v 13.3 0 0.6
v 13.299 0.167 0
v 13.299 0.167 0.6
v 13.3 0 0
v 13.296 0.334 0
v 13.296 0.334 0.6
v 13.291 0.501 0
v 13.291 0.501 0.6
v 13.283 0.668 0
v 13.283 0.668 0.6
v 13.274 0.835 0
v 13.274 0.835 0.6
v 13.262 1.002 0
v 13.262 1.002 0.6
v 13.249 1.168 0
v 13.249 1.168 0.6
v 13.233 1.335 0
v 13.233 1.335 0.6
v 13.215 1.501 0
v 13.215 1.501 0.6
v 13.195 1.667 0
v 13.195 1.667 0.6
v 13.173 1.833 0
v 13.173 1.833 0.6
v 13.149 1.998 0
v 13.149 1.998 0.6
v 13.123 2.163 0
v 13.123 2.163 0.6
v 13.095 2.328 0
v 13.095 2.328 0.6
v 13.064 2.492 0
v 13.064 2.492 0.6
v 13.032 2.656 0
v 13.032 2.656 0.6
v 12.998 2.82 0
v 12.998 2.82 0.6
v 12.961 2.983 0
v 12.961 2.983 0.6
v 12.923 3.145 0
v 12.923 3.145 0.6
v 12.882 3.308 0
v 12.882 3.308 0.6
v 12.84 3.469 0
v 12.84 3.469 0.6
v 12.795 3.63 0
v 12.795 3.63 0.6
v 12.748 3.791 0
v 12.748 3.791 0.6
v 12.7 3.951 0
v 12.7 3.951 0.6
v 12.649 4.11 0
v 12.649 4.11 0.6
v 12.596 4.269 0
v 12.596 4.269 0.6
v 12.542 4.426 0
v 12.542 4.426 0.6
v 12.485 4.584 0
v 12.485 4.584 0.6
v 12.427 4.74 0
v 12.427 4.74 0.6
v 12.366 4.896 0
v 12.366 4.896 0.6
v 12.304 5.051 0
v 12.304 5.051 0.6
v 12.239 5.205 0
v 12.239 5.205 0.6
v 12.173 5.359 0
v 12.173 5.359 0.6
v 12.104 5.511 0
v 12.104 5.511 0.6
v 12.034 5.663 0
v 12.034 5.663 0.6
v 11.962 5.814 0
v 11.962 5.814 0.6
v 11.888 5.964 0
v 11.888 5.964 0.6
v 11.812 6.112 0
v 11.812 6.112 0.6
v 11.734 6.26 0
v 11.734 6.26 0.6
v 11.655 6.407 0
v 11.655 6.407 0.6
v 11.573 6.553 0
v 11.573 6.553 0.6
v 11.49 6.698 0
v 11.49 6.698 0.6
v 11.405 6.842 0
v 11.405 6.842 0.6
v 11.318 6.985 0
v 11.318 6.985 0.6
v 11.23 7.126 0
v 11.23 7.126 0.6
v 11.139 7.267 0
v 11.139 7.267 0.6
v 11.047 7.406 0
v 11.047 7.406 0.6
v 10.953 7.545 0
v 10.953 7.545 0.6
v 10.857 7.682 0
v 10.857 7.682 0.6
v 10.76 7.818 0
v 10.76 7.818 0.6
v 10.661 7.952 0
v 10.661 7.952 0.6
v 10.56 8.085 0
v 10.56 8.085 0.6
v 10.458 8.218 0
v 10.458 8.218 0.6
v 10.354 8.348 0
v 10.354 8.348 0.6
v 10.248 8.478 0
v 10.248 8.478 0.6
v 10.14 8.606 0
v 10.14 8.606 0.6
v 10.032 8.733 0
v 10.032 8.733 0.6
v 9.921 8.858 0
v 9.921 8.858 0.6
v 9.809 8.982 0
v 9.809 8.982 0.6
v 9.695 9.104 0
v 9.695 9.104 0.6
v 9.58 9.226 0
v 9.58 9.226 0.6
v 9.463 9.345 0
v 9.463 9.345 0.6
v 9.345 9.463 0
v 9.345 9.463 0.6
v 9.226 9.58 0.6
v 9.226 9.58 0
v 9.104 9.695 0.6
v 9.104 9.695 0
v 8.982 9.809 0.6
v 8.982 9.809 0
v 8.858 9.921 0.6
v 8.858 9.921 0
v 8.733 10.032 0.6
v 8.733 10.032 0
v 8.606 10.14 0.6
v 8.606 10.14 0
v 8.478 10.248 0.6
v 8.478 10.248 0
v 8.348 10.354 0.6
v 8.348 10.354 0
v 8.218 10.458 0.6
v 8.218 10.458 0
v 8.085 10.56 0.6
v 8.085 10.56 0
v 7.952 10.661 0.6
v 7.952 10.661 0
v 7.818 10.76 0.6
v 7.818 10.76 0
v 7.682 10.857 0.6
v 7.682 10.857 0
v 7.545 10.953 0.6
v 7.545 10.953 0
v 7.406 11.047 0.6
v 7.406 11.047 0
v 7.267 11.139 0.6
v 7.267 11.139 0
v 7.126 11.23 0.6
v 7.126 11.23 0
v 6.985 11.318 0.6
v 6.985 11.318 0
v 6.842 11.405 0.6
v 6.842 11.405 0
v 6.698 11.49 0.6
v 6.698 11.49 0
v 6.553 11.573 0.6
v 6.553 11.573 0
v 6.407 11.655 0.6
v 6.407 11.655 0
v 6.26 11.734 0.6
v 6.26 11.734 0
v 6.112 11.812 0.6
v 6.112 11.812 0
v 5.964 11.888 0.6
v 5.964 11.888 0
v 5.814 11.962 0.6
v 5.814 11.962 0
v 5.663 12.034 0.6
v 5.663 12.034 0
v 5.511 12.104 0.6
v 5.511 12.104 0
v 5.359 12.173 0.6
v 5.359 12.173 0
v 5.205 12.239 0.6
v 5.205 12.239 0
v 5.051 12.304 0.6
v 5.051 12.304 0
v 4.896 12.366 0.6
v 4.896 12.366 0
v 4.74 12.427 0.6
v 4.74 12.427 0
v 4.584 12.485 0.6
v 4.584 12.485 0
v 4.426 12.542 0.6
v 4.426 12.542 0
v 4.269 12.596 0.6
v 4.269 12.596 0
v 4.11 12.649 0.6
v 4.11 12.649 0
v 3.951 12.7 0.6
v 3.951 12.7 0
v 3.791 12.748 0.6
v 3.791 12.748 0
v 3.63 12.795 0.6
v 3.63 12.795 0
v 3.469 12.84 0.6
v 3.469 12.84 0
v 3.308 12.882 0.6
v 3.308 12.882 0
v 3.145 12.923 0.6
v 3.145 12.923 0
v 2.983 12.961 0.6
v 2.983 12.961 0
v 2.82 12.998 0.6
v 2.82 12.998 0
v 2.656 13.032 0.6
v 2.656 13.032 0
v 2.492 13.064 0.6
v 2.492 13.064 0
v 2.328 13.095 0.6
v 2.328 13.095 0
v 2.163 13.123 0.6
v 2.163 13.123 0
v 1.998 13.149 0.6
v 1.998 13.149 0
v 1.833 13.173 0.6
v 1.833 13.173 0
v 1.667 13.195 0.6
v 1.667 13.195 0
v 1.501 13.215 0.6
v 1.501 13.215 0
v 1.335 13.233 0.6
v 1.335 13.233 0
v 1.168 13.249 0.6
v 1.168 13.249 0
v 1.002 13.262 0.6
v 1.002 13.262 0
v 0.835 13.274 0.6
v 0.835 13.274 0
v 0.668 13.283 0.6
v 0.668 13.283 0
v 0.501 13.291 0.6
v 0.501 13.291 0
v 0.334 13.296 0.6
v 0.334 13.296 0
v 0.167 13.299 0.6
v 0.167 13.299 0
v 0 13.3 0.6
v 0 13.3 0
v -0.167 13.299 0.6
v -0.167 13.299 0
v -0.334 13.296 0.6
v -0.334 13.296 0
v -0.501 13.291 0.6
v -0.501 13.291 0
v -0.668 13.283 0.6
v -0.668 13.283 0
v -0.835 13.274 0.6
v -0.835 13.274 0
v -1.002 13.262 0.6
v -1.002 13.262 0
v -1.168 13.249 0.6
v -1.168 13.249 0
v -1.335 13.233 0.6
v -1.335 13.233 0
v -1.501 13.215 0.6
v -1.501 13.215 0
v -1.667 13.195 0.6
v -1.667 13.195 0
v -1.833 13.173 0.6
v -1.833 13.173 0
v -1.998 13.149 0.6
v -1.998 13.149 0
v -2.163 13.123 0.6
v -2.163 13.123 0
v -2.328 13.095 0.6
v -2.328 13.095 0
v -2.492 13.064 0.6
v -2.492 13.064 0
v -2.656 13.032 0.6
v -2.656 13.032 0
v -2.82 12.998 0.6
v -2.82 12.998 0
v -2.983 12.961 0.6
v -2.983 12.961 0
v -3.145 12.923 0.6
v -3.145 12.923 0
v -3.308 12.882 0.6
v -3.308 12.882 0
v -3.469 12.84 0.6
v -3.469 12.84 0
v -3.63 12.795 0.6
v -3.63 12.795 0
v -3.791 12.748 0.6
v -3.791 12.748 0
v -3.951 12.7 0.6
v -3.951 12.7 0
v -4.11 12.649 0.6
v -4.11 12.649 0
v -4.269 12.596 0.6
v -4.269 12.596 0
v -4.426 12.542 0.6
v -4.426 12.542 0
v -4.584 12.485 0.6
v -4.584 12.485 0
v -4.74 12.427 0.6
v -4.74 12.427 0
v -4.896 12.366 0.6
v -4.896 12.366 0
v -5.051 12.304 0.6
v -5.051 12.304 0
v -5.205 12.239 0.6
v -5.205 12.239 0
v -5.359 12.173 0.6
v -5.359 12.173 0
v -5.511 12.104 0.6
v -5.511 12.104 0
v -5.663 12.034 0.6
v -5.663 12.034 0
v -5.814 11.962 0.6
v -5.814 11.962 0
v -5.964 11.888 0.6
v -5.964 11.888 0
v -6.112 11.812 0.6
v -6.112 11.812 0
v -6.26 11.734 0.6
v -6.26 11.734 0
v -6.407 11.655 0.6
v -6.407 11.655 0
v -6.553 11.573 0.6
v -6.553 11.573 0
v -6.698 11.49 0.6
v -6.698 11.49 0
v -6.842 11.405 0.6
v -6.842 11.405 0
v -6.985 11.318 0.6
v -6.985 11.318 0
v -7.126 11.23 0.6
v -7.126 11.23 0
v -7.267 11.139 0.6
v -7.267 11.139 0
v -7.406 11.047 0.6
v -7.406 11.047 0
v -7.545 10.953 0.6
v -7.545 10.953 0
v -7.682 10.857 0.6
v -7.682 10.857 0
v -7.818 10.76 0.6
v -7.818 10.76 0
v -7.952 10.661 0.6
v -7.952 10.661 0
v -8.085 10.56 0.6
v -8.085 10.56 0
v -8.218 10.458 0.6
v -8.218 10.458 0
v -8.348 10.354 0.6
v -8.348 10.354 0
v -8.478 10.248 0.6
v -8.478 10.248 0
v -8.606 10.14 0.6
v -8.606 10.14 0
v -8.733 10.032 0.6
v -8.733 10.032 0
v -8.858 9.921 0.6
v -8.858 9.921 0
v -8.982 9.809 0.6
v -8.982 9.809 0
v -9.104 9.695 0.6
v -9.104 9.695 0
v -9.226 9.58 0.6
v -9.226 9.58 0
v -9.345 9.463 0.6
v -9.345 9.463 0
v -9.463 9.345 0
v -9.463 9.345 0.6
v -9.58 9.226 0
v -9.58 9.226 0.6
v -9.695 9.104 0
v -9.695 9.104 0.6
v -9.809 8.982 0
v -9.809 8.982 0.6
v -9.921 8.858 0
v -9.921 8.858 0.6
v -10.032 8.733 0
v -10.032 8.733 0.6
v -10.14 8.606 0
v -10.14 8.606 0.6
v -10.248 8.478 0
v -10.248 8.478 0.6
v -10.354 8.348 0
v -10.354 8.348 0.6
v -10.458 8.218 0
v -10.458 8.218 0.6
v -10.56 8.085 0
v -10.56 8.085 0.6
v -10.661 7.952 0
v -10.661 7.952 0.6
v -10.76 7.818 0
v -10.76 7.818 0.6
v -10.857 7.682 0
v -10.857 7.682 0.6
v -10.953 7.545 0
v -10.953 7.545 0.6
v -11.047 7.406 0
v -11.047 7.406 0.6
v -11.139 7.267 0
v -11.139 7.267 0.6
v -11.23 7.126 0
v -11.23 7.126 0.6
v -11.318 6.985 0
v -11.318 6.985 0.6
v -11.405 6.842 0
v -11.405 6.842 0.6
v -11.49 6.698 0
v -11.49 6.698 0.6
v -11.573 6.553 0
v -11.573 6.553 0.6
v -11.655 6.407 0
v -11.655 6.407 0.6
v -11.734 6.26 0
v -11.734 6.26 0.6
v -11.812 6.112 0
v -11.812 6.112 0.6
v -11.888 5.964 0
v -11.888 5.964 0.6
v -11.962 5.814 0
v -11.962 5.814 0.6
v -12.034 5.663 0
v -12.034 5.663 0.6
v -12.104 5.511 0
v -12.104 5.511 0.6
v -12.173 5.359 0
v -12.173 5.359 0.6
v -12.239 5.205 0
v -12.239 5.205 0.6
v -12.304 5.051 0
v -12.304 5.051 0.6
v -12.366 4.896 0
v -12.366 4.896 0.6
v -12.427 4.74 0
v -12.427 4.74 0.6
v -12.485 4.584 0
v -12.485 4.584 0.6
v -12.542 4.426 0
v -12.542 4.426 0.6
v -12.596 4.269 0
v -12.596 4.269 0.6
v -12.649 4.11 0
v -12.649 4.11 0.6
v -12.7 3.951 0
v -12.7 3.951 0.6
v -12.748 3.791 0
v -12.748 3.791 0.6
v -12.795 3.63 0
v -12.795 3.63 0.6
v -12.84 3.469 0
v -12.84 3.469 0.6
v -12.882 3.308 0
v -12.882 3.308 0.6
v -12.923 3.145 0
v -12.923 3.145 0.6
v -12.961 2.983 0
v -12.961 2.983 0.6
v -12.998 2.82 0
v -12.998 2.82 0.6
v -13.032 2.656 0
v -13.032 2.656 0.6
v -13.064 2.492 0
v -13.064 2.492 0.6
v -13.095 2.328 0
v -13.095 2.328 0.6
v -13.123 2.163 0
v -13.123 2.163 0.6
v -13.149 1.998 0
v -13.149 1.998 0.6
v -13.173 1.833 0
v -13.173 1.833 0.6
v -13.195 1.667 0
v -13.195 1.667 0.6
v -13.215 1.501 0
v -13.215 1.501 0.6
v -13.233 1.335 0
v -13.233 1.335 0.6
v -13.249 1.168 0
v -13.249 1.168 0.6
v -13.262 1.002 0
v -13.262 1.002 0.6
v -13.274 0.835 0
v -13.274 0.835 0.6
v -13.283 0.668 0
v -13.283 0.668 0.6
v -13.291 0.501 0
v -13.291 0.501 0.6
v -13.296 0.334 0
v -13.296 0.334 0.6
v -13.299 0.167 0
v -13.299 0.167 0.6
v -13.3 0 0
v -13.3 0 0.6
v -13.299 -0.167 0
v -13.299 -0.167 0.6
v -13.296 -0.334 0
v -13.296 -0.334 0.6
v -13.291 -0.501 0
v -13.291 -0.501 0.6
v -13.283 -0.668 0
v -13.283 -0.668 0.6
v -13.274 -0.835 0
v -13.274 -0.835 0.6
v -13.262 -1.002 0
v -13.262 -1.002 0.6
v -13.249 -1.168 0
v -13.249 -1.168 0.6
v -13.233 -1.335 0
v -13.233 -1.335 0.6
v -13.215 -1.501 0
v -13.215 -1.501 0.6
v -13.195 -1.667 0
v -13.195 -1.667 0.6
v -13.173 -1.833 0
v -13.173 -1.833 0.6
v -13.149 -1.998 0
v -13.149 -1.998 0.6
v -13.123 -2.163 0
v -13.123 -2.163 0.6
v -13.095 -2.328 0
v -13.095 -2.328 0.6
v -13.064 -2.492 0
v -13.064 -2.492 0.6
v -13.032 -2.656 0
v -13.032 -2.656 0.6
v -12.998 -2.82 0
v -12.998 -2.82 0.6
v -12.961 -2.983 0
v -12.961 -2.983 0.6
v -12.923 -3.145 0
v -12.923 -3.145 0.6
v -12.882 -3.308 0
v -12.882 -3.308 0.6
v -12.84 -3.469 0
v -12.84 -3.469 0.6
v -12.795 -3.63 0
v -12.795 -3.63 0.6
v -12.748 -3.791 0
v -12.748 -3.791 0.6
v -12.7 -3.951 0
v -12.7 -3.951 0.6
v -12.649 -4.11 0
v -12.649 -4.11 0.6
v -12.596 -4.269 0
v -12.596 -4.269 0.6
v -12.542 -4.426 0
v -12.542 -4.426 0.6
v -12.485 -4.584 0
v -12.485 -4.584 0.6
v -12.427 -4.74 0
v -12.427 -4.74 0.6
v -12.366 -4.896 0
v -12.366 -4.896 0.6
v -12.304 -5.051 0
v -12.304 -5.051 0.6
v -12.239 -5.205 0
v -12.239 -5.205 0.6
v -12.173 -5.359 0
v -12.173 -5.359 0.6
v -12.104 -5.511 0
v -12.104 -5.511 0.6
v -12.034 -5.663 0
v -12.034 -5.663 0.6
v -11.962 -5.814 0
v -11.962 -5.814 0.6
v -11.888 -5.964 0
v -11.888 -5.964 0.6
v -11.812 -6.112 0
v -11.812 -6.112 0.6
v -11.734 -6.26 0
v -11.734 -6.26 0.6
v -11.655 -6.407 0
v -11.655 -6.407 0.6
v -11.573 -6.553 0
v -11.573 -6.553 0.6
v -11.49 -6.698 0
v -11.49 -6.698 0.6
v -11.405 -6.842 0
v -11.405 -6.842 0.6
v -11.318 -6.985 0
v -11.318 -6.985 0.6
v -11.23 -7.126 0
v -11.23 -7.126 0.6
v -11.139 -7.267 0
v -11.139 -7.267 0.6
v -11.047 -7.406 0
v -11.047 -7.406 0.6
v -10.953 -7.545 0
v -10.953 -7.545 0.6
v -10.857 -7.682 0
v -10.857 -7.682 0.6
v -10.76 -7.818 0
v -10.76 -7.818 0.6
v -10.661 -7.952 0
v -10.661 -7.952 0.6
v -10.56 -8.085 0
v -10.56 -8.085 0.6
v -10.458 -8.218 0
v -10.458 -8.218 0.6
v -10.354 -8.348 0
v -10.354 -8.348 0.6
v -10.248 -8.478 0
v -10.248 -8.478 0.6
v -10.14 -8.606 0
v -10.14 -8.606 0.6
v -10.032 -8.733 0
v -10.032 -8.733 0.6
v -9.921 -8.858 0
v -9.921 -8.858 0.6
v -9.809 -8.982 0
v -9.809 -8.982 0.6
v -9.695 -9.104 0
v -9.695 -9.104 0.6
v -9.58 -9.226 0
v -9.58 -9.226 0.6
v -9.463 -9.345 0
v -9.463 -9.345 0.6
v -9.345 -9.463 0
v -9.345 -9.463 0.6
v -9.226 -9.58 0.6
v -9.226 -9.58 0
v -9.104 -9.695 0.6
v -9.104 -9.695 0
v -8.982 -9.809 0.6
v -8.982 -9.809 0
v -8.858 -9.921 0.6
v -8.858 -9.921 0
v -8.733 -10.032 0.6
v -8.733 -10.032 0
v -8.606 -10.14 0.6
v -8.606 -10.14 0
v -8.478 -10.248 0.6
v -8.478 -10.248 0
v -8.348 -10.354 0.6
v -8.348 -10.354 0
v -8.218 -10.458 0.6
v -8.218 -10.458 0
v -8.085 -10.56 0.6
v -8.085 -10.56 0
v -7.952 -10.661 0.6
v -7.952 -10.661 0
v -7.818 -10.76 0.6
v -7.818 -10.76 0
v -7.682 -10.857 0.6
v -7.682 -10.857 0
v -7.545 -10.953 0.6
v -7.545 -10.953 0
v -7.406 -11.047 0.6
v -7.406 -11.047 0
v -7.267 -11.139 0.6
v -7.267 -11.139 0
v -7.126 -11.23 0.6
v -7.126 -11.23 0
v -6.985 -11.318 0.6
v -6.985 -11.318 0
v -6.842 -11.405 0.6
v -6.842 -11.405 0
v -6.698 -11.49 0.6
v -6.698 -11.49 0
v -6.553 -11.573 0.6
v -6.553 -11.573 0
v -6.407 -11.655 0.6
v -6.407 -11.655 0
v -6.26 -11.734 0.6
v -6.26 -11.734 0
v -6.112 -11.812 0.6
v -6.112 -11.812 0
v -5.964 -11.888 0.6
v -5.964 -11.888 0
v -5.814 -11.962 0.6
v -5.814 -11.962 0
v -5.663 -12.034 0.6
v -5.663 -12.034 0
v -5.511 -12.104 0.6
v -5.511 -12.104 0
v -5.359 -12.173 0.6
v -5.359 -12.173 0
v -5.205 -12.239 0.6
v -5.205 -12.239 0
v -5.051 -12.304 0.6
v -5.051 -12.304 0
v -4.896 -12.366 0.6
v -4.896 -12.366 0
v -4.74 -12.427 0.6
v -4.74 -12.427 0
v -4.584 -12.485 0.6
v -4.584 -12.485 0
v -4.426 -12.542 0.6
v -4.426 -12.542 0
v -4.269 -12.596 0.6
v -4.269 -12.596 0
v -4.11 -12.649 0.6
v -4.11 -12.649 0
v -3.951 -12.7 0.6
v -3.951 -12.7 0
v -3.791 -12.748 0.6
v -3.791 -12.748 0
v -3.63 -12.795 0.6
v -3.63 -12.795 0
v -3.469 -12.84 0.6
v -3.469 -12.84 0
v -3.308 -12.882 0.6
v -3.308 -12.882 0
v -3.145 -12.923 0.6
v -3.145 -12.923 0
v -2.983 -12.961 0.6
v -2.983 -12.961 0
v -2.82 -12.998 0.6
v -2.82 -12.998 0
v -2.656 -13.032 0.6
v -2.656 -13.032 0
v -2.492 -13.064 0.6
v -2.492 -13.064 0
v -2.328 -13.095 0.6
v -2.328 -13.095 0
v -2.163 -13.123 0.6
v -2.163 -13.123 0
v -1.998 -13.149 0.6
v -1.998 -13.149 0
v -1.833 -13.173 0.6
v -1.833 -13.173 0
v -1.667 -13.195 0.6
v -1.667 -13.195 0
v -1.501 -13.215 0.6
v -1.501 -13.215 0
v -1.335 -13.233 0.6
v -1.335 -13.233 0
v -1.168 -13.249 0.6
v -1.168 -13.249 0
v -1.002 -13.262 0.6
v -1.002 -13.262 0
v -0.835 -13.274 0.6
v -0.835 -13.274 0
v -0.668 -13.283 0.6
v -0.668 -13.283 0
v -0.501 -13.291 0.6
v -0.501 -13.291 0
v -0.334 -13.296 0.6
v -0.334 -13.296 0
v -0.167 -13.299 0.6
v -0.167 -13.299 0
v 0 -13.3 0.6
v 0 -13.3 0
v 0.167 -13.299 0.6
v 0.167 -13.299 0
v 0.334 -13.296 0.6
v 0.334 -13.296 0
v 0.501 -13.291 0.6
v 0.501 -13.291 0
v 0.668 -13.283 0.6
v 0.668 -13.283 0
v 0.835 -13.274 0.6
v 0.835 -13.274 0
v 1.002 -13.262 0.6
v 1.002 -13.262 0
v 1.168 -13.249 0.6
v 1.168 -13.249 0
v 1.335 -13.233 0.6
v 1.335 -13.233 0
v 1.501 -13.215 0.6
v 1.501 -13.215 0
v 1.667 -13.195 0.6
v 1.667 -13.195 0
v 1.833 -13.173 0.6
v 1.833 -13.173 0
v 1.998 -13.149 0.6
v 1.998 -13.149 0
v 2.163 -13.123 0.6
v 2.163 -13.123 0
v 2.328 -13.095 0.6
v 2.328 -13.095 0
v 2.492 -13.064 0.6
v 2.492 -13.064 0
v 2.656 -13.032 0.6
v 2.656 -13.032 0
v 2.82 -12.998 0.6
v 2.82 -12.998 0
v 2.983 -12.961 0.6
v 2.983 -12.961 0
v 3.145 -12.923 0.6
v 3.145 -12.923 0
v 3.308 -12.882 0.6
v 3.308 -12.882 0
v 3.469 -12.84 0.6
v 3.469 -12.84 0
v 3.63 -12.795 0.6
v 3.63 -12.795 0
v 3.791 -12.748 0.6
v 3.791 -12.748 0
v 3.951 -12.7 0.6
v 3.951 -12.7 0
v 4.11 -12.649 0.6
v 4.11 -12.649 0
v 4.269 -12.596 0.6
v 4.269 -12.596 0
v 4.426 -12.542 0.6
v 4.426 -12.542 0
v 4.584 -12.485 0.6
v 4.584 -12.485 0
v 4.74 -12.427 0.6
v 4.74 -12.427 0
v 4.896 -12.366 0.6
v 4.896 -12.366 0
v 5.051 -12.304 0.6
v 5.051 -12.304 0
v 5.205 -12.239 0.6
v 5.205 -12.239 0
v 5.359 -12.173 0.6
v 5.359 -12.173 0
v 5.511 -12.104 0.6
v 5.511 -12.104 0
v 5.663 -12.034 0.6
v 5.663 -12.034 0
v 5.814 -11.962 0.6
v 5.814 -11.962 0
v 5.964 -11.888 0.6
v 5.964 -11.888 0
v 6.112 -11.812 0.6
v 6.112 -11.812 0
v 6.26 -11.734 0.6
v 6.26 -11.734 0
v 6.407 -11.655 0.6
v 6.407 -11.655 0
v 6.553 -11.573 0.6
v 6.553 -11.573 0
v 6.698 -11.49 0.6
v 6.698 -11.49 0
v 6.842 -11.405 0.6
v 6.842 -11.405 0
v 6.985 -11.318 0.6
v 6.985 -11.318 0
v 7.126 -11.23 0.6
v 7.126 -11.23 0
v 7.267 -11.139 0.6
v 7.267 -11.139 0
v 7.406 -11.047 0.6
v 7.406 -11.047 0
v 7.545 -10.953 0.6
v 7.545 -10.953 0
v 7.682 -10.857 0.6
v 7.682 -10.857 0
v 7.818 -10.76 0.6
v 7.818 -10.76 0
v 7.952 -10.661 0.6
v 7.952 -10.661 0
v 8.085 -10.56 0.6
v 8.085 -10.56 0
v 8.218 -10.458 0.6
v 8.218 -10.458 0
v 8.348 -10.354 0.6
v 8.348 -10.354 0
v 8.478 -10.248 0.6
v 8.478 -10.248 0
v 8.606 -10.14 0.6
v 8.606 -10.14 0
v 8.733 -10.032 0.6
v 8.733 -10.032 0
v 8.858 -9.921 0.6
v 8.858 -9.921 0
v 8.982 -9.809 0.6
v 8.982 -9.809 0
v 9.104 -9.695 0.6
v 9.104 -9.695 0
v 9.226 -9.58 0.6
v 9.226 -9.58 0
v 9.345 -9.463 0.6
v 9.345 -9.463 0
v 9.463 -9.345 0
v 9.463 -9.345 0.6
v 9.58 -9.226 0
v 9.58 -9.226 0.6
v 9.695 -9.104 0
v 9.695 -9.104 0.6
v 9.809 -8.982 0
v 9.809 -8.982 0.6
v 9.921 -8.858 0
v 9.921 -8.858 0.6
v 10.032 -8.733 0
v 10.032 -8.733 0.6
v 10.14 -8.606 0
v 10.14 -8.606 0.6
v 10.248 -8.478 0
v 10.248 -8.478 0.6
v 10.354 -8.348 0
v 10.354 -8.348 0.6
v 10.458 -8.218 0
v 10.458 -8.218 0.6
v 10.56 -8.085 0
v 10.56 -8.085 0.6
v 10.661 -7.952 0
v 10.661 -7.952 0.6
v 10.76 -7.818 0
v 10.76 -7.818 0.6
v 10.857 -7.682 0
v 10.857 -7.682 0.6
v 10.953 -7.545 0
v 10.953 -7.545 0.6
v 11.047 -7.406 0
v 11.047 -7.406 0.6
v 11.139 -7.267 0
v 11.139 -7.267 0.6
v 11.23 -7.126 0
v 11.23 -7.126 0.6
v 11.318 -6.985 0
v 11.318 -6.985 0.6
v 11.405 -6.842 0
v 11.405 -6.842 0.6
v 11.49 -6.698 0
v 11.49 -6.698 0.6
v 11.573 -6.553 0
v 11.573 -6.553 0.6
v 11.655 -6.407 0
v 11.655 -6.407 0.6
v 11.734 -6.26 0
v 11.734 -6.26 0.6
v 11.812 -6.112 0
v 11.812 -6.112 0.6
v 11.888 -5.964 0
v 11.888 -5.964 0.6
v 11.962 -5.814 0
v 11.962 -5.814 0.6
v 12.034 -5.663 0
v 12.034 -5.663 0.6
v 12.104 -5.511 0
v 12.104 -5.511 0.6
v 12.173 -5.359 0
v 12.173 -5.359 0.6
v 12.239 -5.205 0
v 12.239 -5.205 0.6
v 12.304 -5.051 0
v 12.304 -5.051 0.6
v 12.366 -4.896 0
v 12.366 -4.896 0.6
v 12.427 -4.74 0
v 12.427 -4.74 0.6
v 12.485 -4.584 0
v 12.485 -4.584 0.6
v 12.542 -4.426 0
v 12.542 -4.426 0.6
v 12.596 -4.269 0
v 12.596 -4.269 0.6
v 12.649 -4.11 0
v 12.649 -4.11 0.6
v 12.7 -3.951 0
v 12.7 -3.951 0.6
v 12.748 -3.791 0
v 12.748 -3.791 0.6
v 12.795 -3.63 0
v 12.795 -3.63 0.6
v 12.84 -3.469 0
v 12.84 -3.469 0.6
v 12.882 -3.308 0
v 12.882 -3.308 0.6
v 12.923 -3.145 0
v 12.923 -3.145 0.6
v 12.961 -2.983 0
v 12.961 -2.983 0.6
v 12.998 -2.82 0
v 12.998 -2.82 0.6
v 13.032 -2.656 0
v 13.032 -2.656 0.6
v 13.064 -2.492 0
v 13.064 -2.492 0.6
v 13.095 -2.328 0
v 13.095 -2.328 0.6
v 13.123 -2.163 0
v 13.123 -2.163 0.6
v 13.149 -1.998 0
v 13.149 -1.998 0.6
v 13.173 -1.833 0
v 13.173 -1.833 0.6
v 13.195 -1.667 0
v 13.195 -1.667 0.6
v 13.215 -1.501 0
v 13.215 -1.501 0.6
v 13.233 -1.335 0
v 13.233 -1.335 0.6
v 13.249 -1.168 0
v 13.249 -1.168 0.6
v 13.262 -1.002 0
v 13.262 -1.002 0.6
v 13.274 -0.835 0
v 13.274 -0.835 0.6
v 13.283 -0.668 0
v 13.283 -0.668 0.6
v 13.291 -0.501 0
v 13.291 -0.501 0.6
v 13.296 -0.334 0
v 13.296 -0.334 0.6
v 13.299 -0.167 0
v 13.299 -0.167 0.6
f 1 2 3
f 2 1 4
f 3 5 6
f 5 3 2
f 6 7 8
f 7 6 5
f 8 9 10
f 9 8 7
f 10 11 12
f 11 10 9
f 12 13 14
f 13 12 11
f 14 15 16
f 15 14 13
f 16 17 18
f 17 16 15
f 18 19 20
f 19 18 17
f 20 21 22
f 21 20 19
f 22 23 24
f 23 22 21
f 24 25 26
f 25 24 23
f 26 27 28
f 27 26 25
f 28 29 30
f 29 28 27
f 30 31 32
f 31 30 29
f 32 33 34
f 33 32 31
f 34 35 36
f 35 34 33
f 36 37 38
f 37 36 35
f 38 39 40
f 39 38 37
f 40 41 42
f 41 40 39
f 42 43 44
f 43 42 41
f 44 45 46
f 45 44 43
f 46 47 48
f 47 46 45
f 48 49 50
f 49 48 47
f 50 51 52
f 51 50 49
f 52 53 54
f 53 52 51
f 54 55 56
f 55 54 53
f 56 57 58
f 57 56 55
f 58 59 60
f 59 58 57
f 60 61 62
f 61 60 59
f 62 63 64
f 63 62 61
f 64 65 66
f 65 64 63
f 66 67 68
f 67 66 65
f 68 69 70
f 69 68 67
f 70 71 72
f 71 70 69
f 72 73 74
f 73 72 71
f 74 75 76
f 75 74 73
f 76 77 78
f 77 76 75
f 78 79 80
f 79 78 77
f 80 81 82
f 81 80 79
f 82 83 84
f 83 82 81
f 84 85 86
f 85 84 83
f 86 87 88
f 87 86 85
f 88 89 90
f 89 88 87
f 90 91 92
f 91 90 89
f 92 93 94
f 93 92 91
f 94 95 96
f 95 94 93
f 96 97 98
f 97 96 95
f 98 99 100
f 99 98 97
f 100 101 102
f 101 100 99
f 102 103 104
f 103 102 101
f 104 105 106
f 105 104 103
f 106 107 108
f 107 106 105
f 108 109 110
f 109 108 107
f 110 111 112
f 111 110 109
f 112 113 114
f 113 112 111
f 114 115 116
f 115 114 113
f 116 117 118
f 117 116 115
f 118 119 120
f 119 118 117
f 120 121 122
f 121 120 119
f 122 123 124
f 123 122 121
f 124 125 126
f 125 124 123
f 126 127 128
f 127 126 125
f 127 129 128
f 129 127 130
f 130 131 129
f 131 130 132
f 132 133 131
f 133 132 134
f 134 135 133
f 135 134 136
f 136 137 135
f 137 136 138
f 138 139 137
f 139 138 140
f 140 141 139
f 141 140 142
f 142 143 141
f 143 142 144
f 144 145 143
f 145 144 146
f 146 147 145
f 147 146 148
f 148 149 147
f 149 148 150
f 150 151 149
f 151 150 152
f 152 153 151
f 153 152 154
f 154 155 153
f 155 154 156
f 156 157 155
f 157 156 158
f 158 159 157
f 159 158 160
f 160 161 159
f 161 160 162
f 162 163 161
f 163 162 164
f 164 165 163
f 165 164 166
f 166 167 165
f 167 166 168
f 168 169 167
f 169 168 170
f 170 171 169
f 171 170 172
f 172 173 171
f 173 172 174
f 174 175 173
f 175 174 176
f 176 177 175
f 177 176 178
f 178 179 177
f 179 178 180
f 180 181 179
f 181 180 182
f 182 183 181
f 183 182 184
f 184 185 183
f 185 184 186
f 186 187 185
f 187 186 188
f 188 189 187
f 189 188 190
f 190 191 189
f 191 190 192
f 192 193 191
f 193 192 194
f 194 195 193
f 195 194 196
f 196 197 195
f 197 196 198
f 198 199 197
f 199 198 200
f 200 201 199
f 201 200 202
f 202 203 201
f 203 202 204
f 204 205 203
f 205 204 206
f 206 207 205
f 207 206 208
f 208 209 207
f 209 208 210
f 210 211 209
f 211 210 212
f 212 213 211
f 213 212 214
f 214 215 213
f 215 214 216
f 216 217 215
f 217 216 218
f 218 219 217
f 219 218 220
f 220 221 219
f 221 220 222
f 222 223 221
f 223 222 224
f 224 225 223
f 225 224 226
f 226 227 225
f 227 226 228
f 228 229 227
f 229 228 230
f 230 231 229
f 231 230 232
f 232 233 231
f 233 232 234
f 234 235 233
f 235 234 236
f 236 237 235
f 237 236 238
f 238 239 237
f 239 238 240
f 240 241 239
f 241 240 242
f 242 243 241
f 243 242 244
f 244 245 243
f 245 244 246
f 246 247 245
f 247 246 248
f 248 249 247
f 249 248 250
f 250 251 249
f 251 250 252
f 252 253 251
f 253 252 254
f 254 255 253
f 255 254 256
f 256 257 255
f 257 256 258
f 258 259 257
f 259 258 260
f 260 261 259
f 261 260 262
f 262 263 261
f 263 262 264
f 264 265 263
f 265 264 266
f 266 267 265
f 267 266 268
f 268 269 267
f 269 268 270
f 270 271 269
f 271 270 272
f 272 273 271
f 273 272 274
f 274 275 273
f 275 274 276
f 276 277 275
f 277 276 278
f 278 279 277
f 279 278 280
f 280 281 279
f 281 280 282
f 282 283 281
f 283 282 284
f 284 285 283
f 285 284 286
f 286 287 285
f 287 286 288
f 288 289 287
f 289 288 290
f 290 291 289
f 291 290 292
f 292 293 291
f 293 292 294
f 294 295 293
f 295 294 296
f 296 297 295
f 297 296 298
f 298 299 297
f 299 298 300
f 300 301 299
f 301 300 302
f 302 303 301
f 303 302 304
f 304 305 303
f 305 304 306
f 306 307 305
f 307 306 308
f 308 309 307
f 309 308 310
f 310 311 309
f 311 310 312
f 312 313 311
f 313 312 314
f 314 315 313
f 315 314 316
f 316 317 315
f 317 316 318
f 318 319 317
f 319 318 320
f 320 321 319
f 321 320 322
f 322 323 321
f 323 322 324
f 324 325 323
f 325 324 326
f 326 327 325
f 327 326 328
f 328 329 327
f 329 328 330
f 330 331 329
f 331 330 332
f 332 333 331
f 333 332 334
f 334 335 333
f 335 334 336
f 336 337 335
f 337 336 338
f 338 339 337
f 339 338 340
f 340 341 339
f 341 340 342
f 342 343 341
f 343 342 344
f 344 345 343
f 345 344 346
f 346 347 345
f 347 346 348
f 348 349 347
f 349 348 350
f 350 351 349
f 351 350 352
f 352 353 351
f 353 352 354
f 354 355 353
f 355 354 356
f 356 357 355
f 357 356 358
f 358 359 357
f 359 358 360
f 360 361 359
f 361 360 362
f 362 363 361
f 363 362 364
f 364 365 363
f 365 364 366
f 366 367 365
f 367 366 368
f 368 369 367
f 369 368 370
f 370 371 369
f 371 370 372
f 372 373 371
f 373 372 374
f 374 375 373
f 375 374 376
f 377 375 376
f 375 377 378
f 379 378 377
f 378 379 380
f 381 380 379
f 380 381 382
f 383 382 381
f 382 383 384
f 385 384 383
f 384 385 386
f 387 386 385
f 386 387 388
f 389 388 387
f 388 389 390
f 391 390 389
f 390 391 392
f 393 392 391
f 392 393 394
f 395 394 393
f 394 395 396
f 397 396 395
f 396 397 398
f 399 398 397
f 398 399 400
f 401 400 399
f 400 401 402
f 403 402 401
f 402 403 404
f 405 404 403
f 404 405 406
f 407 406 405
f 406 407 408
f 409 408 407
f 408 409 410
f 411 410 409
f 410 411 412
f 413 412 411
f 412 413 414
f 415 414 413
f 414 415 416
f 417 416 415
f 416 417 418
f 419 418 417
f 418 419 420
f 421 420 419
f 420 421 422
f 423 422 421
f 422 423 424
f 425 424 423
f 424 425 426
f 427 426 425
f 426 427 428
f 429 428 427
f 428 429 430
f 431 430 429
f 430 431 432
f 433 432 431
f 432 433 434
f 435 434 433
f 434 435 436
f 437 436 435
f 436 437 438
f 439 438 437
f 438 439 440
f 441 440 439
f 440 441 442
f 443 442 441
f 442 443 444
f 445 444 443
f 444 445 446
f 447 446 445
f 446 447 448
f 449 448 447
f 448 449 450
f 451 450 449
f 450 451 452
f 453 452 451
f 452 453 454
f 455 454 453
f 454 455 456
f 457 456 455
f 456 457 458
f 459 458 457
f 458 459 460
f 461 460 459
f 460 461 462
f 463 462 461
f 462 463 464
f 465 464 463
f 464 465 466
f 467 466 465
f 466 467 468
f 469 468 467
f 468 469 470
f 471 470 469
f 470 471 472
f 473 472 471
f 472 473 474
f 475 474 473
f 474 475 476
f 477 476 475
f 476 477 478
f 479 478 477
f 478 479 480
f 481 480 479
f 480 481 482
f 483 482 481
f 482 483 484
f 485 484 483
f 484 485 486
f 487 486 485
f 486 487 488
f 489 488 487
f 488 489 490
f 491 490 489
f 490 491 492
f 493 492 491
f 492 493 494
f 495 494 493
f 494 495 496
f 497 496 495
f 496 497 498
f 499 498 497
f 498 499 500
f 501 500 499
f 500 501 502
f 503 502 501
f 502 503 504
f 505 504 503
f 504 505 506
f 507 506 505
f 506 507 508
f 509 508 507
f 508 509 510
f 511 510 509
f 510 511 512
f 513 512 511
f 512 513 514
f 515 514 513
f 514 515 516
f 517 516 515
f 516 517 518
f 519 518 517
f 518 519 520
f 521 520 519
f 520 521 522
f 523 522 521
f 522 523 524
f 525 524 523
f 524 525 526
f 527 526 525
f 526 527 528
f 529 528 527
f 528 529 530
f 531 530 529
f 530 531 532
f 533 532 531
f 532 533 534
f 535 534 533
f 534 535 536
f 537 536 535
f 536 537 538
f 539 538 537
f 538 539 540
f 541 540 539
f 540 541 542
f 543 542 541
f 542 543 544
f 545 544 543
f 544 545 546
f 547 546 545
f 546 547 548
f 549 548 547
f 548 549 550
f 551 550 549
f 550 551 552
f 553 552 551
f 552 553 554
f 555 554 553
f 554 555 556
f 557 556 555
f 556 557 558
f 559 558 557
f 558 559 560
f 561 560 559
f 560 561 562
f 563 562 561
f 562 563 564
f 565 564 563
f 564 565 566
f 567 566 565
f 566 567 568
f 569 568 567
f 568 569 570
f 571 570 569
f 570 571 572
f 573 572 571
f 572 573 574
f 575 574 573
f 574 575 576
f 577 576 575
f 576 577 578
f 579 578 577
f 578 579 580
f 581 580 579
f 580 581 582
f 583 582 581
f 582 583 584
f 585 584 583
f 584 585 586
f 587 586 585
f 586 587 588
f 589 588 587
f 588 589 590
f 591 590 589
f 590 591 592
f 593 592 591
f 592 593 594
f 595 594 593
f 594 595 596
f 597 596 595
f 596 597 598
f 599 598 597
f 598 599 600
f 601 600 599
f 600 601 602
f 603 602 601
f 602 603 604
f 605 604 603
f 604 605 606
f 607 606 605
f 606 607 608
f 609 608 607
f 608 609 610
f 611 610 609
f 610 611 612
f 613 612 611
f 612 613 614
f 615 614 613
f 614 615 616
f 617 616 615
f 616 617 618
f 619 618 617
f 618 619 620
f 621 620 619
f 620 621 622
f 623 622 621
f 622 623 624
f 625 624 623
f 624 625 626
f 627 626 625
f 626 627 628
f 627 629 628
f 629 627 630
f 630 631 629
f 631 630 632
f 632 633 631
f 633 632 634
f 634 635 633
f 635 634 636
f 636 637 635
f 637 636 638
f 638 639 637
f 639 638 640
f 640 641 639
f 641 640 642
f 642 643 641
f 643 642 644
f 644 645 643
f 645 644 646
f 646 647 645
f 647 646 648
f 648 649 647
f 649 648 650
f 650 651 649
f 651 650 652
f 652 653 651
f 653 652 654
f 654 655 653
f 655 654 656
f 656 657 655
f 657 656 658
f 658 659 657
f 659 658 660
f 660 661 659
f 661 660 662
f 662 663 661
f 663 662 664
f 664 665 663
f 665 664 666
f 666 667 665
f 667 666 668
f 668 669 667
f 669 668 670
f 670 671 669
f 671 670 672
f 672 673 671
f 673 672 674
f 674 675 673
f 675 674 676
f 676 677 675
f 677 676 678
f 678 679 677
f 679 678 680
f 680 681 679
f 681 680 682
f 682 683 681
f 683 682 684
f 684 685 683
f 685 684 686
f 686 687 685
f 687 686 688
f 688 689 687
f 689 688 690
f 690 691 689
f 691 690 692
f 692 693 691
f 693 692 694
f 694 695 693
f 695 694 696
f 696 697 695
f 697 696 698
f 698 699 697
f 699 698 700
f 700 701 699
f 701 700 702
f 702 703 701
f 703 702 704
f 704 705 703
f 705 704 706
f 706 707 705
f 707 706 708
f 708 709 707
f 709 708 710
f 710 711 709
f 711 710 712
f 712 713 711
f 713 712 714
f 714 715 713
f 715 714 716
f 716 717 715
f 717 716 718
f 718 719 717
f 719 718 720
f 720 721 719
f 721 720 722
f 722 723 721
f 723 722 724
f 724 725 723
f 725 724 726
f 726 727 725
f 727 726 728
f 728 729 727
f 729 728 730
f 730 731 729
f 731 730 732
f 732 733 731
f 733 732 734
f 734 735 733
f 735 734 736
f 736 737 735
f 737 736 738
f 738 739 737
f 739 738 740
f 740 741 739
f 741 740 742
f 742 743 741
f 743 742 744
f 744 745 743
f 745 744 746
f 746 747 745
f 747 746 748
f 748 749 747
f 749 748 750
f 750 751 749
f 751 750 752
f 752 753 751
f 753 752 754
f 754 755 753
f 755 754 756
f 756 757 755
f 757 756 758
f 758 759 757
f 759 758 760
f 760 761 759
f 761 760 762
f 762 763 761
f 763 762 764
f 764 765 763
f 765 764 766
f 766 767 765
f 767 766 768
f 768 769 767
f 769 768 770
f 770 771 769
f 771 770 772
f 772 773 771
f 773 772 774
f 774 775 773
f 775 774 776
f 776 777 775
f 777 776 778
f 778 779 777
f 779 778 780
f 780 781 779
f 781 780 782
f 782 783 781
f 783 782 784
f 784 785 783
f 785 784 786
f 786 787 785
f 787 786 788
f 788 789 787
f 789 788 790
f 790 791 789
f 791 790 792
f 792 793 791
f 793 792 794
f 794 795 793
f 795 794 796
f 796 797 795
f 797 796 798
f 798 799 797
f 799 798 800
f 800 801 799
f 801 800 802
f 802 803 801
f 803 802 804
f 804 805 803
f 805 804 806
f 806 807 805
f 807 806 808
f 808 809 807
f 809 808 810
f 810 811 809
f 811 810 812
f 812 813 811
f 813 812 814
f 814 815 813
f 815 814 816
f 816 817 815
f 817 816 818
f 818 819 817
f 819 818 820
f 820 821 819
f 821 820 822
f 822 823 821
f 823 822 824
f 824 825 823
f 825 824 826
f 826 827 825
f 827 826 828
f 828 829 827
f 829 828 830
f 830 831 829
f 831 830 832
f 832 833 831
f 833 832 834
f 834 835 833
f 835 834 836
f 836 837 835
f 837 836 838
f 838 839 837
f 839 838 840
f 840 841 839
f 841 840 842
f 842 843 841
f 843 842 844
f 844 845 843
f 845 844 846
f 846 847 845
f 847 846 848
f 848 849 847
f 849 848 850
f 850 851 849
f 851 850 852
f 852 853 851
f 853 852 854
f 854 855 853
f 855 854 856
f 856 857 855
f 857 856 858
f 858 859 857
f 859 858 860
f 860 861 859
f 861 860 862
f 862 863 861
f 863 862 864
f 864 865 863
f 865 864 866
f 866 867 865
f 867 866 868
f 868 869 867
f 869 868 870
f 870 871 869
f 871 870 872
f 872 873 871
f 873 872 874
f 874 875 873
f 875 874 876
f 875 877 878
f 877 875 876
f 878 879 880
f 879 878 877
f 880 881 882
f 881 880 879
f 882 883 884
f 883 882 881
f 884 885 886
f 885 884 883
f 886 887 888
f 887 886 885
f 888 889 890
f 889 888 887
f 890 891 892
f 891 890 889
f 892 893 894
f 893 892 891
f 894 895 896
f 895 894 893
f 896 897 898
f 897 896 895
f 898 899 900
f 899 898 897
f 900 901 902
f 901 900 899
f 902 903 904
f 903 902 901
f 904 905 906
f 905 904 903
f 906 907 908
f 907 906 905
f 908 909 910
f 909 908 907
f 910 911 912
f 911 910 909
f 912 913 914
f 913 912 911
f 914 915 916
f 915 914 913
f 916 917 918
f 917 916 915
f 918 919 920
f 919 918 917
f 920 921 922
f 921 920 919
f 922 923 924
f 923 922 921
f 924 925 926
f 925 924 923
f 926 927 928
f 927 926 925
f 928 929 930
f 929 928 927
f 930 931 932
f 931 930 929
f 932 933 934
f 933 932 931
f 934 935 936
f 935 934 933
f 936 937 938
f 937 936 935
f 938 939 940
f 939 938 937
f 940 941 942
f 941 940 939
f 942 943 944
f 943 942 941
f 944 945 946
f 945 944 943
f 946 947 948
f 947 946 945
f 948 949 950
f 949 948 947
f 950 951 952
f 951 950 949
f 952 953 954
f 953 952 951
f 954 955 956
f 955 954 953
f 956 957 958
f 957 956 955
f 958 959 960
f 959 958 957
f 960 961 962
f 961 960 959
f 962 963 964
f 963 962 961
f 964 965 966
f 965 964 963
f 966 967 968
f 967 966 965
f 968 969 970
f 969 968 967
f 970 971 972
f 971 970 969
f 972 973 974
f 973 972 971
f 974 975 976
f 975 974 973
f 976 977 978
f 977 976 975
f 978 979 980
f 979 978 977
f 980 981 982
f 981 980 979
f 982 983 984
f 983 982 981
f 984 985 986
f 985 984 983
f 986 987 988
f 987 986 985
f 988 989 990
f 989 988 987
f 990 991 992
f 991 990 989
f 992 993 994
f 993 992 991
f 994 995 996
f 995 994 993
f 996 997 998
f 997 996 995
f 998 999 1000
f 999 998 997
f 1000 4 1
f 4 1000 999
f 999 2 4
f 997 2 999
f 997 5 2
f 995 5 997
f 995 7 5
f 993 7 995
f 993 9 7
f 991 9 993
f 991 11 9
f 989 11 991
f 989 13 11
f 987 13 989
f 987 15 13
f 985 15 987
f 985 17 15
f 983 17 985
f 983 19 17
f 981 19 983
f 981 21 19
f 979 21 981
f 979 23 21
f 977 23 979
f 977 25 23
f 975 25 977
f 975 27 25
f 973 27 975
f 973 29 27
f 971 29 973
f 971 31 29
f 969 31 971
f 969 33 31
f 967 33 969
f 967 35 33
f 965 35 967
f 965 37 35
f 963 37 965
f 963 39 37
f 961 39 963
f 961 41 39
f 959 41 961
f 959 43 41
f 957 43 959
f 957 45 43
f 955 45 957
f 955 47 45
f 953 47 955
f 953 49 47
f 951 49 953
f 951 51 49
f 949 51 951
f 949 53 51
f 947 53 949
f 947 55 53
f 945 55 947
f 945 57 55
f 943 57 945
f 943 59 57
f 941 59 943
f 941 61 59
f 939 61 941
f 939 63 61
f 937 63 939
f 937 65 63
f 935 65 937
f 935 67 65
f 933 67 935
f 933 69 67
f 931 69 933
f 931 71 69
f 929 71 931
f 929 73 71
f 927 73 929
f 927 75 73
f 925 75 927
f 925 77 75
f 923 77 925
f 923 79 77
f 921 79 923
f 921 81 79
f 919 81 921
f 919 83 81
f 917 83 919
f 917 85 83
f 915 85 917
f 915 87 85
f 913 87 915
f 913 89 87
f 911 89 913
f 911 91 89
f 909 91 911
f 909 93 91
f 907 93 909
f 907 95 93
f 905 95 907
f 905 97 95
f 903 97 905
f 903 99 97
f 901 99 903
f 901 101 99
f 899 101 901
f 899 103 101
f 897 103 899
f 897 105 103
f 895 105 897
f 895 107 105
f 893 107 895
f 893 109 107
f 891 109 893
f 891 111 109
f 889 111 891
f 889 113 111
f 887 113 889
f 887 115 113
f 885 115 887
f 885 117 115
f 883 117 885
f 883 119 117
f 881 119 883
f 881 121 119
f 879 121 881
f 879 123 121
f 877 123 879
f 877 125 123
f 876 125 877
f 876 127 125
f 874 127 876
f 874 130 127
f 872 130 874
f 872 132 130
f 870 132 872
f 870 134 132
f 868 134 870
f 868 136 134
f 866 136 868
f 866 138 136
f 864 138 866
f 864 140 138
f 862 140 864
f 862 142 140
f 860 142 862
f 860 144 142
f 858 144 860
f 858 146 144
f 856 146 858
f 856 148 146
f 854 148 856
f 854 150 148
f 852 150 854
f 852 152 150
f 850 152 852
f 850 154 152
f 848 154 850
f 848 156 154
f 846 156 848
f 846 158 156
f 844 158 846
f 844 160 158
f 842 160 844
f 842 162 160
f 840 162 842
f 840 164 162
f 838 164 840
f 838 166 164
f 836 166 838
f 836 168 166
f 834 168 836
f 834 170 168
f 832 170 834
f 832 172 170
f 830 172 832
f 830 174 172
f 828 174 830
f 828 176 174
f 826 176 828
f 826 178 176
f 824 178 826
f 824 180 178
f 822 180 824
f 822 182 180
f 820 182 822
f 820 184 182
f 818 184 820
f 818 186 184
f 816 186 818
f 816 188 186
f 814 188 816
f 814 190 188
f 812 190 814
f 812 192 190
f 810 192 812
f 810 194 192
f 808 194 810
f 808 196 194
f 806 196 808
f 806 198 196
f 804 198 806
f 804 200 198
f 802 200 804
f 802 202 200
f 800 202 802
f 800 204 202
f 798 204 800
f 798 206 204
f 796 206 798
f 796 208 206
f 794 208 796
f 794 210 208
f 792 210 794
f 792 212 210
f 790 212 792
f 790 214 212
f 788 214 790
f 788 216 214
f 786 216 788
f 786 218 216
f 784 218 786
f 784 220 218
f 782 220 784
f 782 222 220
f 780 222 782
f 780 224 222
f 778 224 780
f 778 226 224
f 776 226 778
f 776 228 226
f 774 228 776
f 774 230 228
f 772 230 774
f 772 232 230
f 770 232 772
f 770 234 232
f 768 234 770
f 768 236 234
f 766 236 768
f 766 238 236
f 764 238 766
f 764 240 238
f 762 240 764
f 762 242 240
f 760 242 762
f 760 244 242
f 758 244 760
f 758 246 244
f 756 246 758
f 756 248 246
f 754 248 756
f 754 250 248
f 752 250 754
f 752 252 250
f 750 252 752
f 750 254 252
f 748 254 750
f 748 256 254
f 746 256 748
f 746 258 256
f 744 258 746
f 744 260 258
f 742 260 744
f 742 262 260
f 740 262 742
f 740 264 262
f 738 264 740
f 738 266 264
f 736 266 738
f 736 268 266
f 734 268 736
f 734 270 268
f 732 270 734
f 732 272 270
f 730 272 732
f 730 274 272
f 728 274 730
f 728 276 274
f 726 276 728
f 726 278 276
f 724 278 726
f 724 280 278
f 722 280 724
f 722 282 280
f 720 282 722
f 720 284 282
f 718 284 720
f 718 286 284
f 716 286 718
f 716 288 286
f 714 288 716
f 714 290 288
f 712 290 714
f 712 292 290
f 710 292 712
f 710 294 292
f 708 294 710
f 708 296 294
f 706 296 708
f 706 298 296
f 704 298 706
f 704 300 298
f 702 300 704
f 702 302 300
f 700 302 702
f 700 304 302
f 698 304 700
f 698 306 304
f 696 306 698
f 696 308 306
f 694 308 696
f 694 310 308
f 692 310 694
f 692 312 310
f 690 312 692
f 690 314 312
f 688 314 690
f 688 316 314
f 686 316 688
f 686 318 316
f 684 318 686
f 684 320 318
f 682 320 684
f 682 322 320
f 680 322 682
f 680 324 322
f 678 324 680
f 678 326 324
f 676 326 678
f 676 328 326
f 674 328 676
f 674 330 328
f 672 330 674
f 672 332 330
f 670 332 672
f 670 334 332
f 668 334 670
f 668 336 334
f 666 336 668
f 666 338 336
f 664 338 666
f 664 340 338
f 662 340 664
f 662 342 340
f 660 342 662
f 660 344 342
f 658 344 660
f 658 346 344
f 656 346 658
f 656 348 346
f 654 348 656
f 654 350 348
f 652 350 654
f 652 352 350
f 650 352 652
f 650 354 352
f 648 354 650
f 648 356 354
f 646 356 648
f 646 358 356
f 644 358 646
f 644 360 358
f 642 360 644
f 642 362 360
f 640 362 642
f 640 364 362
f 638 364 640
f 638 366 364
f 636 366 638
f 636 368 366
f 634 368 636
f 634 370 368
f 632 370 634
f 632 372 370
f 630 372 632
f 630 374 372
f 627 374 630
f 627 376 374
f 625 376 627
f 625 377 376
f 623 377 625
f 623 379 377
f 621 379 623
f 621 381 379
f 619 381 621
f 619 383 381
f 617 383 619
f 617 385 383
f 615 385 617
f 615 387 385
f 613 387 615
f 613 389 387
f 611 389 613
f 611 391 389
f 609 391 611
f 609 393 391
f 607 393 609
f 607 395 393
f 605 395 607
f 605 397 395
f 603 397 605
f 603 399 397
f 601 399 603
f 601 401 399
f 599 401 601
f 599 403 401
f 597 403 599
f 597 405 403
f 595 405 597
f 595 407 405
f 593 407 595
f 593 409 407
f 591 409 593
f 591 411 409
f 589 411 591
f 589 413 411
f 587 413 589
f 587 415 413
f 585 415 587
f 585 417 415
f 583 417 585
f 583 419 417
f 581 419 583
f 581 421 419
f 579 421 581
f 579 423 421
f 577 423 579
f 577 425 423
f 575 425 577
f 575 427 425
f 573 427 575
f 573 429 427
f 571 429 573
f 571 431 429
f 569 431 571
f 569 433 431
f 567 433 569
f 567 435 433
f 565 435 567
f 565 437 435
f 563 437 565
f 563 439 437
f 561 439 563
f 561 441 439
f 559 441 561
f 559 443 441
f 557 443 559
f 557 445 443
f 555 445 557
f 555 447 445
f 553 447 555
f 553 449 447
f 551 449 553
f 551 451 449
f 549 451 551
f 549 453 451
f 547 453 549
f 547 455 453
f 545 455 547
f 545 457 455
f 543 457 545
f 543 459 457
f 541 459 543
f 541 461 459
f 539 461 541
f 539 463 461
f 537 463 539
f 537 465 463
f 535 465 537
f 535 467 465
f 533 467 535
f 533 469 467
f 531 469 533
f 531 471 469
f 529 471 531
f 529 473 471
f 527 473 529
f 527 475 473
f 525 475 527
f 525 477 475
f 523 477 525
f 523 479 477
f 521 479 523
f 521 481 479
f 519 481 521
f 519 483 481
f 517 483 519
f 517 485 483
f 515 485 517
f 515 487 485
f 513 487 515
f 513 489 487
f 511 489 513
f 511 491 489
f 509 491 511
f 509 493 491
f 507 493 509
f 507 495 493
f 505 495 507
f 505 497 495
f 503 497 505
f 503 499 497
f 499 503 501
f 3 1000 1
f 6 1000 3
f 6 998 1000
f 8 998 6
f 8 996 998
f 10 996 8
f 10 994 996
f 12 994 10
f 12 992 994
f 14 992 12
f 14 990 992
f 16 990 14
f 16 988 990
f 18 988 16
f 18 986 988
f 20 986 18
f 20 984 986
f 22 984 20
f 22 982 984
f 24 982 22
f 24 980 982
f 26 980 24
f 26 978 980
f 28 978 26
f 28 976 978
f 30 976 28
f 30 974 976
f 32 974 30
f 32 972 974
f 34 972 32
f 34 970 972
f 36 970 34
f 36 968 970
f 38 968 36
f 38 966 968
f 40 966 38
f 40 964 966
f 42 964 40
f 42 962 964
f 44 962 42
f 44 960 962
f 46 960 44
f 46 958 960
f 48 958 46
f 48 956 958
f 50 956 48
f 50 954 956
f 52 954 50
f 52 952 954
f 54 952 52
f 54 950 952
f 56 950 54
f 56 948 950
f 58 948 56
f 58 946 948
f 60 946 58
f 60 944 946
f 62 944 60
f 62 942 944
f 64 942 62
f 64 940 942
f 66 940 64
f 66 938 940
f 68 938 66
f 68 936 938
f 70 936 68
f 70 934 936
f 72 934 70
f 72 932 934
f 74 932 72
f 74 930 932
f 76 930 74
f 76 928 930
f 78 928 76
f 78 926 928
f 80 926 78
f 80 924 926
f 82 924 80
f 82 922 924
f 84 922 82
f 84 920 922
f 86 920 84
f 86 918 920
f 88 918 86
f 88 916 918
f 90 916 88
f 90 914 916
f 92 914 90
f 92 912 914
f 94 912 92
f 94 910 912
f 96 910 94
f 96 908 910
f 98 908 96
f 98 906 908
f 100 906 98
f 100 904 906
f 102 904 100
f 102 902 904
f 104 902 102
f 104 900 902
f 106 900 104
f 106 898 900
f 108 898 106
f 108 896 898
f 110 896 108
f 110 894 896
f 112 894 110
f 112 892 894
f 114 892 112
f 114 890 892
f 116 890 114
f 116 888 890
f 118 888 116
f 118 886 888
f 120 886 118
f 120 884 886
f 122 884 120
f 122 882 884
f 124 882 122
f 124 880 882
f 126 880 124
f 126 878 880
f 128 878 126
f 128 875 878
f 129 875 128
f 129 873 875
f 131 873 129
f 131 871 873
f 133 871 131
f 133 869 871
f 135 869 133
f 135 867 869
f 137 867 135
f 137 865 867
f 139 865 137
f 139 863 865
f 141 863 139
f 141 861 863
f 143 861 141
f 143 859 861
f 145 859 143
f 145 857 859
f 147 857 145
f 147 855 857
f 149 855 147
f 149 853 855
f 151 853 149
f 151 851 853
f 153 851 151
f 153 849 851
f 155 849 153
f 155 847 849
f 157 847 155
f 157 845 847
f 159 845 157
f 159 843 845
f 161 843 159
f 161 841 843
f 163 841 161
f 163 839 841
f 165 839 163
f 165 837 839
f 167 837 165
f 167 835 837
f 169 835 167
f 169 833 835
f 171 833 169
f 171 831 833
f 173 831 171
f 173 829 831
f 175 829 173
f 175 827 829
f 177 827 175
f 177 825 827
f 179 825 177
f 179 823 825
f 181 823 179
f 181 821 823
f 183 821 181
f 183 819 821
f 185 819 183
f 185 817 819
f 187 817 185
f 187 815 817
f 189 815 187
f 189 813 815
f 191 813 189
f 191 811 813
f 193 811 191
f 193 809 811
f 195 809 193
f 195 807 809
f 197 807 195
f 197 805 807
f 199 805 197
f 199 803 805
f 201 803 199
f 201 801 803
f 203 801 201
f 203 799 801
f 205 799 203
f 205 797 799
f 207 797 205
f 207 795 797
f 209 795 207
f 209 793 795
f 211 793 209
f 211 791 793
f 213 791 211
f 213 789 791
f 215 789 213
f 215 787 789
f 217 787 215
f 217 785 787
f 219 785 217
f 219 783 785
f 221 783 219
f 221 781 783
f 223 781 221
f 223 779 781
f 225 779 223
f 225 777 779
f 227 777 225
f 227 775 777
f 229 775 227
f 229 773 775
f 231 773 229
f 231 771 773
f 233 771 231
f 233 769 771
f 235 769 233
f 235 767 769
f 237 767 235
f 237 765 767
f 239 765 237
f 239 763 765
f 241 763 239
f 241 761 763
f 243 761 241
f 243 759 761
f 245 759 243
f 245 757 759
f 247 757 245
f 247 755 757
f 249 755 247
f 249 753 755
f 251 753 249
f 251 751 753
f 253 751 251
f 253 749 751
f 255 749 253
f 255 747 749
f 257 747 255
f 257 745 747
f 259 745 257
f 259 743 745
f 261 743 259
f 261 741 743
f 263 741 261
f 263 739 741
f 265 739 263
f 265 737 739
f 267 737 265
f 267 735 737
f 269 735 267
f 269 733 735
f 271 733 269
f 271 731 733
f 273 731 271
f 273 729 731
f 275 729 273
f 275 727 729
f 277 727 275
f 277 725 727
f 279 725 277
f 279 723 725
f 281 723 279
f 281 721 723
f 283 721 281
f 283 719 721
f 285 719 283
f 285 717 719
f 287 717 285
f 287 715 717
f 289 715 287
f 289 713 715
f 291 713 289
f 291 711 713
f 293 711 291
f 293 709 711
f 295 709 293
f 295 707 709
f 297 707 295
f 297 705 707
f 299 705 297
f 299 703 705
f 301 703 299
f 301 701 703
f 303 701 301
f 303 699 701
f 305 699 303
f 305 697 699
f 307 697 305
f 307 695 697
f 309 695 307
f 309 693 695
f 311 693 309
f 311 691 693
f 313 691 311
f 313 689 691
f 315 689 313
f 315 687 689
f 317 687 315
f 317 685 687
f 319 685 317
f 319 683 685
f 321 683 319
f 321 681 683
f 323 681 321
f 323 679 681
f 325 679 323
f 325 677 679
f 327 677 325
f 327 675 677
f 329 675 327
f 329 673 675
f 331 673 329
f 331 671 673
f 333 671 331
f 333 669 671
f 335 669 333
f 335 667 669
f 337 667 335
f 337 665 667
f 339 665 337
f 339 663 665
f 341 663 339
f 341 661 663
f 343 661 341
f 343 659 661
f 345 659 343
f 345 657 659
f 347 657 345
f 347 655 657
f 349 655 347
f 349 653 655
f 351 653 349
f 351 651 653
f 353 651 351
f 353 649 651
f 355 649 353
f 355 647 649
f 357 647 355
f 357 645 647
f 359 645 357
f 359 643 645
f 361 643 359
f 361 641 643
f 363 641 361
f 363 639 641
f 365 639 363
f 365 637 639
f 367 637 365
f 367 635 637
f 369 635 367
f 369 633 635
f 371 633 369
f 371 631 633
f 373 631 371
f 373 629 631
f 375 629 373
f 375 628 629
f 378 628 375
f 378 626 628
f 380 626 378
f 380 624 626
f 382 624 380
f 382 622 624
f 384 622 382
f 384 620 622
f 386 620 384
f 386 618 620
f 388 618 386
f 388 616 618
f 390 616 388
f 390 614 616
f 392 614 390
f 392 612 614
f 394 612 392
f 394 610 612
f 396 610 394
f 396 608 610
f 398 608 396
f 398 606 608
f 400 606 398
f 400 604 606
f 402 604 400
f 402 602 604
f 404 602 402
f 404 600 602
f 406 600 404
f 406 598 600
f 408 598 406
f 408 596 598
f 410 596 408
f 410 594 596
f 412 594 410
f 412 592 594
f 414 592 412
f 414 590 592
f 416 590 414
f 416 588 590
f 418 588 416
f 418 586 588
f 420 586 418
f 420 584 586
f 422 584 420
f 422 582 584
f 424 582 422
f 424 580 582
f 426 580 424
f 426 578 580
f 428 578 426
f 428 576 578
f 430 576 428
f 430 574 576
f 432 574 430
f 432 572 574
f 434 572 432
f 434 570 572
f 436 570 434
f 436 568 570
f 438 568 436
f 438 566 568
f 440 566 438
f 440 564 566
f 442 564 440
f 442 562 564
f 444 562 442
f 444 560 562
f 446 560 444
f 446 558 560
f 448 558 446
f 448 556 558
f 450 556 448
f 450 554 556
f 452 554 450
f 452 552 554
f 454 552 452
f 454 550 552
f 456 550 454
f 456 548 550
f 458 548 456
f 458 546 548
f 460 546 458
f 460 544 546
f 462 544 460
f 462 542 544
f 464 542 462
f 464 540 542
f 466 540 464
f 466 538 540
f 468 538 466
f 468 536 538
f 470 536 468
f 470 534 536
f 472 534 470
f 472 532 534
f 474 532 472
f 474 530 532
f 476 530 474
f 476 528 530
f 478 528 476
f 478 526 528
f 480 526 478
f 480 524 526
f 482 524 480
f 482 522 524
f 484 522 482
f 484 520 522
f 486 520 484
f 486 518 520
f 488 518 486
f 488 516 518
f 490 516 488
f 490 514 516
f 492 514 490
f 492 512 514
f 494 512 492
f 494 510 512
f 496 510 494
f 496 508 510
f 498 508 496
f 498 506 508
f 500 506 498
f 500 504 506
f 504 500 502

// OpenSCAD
echo(version=version());
$fn = 500;
// rotate_extrude() rotates a 2D shape around the Z axis. 
// Note that the 2D shape must be either completely on the 
// positive or negative side of the X axis.
            
color("green") cylinder(0.6,13.3,13.3);
            





// Written in 2015 by Torsten Paul <Torsten.Paul@gmx.de>
//
// To the extent possible under law, the author(s) have dedicated all
// copyright and related and neighboring rights to this software to the
// public domain worldwide. This software is distributed without any
// warranty.
//
// You should have received a copy of the CC0 Public Domain
// Dedication along with this software.
// If not, see <http://creativecommons.org/publicdomain/zero/1.0/>.
